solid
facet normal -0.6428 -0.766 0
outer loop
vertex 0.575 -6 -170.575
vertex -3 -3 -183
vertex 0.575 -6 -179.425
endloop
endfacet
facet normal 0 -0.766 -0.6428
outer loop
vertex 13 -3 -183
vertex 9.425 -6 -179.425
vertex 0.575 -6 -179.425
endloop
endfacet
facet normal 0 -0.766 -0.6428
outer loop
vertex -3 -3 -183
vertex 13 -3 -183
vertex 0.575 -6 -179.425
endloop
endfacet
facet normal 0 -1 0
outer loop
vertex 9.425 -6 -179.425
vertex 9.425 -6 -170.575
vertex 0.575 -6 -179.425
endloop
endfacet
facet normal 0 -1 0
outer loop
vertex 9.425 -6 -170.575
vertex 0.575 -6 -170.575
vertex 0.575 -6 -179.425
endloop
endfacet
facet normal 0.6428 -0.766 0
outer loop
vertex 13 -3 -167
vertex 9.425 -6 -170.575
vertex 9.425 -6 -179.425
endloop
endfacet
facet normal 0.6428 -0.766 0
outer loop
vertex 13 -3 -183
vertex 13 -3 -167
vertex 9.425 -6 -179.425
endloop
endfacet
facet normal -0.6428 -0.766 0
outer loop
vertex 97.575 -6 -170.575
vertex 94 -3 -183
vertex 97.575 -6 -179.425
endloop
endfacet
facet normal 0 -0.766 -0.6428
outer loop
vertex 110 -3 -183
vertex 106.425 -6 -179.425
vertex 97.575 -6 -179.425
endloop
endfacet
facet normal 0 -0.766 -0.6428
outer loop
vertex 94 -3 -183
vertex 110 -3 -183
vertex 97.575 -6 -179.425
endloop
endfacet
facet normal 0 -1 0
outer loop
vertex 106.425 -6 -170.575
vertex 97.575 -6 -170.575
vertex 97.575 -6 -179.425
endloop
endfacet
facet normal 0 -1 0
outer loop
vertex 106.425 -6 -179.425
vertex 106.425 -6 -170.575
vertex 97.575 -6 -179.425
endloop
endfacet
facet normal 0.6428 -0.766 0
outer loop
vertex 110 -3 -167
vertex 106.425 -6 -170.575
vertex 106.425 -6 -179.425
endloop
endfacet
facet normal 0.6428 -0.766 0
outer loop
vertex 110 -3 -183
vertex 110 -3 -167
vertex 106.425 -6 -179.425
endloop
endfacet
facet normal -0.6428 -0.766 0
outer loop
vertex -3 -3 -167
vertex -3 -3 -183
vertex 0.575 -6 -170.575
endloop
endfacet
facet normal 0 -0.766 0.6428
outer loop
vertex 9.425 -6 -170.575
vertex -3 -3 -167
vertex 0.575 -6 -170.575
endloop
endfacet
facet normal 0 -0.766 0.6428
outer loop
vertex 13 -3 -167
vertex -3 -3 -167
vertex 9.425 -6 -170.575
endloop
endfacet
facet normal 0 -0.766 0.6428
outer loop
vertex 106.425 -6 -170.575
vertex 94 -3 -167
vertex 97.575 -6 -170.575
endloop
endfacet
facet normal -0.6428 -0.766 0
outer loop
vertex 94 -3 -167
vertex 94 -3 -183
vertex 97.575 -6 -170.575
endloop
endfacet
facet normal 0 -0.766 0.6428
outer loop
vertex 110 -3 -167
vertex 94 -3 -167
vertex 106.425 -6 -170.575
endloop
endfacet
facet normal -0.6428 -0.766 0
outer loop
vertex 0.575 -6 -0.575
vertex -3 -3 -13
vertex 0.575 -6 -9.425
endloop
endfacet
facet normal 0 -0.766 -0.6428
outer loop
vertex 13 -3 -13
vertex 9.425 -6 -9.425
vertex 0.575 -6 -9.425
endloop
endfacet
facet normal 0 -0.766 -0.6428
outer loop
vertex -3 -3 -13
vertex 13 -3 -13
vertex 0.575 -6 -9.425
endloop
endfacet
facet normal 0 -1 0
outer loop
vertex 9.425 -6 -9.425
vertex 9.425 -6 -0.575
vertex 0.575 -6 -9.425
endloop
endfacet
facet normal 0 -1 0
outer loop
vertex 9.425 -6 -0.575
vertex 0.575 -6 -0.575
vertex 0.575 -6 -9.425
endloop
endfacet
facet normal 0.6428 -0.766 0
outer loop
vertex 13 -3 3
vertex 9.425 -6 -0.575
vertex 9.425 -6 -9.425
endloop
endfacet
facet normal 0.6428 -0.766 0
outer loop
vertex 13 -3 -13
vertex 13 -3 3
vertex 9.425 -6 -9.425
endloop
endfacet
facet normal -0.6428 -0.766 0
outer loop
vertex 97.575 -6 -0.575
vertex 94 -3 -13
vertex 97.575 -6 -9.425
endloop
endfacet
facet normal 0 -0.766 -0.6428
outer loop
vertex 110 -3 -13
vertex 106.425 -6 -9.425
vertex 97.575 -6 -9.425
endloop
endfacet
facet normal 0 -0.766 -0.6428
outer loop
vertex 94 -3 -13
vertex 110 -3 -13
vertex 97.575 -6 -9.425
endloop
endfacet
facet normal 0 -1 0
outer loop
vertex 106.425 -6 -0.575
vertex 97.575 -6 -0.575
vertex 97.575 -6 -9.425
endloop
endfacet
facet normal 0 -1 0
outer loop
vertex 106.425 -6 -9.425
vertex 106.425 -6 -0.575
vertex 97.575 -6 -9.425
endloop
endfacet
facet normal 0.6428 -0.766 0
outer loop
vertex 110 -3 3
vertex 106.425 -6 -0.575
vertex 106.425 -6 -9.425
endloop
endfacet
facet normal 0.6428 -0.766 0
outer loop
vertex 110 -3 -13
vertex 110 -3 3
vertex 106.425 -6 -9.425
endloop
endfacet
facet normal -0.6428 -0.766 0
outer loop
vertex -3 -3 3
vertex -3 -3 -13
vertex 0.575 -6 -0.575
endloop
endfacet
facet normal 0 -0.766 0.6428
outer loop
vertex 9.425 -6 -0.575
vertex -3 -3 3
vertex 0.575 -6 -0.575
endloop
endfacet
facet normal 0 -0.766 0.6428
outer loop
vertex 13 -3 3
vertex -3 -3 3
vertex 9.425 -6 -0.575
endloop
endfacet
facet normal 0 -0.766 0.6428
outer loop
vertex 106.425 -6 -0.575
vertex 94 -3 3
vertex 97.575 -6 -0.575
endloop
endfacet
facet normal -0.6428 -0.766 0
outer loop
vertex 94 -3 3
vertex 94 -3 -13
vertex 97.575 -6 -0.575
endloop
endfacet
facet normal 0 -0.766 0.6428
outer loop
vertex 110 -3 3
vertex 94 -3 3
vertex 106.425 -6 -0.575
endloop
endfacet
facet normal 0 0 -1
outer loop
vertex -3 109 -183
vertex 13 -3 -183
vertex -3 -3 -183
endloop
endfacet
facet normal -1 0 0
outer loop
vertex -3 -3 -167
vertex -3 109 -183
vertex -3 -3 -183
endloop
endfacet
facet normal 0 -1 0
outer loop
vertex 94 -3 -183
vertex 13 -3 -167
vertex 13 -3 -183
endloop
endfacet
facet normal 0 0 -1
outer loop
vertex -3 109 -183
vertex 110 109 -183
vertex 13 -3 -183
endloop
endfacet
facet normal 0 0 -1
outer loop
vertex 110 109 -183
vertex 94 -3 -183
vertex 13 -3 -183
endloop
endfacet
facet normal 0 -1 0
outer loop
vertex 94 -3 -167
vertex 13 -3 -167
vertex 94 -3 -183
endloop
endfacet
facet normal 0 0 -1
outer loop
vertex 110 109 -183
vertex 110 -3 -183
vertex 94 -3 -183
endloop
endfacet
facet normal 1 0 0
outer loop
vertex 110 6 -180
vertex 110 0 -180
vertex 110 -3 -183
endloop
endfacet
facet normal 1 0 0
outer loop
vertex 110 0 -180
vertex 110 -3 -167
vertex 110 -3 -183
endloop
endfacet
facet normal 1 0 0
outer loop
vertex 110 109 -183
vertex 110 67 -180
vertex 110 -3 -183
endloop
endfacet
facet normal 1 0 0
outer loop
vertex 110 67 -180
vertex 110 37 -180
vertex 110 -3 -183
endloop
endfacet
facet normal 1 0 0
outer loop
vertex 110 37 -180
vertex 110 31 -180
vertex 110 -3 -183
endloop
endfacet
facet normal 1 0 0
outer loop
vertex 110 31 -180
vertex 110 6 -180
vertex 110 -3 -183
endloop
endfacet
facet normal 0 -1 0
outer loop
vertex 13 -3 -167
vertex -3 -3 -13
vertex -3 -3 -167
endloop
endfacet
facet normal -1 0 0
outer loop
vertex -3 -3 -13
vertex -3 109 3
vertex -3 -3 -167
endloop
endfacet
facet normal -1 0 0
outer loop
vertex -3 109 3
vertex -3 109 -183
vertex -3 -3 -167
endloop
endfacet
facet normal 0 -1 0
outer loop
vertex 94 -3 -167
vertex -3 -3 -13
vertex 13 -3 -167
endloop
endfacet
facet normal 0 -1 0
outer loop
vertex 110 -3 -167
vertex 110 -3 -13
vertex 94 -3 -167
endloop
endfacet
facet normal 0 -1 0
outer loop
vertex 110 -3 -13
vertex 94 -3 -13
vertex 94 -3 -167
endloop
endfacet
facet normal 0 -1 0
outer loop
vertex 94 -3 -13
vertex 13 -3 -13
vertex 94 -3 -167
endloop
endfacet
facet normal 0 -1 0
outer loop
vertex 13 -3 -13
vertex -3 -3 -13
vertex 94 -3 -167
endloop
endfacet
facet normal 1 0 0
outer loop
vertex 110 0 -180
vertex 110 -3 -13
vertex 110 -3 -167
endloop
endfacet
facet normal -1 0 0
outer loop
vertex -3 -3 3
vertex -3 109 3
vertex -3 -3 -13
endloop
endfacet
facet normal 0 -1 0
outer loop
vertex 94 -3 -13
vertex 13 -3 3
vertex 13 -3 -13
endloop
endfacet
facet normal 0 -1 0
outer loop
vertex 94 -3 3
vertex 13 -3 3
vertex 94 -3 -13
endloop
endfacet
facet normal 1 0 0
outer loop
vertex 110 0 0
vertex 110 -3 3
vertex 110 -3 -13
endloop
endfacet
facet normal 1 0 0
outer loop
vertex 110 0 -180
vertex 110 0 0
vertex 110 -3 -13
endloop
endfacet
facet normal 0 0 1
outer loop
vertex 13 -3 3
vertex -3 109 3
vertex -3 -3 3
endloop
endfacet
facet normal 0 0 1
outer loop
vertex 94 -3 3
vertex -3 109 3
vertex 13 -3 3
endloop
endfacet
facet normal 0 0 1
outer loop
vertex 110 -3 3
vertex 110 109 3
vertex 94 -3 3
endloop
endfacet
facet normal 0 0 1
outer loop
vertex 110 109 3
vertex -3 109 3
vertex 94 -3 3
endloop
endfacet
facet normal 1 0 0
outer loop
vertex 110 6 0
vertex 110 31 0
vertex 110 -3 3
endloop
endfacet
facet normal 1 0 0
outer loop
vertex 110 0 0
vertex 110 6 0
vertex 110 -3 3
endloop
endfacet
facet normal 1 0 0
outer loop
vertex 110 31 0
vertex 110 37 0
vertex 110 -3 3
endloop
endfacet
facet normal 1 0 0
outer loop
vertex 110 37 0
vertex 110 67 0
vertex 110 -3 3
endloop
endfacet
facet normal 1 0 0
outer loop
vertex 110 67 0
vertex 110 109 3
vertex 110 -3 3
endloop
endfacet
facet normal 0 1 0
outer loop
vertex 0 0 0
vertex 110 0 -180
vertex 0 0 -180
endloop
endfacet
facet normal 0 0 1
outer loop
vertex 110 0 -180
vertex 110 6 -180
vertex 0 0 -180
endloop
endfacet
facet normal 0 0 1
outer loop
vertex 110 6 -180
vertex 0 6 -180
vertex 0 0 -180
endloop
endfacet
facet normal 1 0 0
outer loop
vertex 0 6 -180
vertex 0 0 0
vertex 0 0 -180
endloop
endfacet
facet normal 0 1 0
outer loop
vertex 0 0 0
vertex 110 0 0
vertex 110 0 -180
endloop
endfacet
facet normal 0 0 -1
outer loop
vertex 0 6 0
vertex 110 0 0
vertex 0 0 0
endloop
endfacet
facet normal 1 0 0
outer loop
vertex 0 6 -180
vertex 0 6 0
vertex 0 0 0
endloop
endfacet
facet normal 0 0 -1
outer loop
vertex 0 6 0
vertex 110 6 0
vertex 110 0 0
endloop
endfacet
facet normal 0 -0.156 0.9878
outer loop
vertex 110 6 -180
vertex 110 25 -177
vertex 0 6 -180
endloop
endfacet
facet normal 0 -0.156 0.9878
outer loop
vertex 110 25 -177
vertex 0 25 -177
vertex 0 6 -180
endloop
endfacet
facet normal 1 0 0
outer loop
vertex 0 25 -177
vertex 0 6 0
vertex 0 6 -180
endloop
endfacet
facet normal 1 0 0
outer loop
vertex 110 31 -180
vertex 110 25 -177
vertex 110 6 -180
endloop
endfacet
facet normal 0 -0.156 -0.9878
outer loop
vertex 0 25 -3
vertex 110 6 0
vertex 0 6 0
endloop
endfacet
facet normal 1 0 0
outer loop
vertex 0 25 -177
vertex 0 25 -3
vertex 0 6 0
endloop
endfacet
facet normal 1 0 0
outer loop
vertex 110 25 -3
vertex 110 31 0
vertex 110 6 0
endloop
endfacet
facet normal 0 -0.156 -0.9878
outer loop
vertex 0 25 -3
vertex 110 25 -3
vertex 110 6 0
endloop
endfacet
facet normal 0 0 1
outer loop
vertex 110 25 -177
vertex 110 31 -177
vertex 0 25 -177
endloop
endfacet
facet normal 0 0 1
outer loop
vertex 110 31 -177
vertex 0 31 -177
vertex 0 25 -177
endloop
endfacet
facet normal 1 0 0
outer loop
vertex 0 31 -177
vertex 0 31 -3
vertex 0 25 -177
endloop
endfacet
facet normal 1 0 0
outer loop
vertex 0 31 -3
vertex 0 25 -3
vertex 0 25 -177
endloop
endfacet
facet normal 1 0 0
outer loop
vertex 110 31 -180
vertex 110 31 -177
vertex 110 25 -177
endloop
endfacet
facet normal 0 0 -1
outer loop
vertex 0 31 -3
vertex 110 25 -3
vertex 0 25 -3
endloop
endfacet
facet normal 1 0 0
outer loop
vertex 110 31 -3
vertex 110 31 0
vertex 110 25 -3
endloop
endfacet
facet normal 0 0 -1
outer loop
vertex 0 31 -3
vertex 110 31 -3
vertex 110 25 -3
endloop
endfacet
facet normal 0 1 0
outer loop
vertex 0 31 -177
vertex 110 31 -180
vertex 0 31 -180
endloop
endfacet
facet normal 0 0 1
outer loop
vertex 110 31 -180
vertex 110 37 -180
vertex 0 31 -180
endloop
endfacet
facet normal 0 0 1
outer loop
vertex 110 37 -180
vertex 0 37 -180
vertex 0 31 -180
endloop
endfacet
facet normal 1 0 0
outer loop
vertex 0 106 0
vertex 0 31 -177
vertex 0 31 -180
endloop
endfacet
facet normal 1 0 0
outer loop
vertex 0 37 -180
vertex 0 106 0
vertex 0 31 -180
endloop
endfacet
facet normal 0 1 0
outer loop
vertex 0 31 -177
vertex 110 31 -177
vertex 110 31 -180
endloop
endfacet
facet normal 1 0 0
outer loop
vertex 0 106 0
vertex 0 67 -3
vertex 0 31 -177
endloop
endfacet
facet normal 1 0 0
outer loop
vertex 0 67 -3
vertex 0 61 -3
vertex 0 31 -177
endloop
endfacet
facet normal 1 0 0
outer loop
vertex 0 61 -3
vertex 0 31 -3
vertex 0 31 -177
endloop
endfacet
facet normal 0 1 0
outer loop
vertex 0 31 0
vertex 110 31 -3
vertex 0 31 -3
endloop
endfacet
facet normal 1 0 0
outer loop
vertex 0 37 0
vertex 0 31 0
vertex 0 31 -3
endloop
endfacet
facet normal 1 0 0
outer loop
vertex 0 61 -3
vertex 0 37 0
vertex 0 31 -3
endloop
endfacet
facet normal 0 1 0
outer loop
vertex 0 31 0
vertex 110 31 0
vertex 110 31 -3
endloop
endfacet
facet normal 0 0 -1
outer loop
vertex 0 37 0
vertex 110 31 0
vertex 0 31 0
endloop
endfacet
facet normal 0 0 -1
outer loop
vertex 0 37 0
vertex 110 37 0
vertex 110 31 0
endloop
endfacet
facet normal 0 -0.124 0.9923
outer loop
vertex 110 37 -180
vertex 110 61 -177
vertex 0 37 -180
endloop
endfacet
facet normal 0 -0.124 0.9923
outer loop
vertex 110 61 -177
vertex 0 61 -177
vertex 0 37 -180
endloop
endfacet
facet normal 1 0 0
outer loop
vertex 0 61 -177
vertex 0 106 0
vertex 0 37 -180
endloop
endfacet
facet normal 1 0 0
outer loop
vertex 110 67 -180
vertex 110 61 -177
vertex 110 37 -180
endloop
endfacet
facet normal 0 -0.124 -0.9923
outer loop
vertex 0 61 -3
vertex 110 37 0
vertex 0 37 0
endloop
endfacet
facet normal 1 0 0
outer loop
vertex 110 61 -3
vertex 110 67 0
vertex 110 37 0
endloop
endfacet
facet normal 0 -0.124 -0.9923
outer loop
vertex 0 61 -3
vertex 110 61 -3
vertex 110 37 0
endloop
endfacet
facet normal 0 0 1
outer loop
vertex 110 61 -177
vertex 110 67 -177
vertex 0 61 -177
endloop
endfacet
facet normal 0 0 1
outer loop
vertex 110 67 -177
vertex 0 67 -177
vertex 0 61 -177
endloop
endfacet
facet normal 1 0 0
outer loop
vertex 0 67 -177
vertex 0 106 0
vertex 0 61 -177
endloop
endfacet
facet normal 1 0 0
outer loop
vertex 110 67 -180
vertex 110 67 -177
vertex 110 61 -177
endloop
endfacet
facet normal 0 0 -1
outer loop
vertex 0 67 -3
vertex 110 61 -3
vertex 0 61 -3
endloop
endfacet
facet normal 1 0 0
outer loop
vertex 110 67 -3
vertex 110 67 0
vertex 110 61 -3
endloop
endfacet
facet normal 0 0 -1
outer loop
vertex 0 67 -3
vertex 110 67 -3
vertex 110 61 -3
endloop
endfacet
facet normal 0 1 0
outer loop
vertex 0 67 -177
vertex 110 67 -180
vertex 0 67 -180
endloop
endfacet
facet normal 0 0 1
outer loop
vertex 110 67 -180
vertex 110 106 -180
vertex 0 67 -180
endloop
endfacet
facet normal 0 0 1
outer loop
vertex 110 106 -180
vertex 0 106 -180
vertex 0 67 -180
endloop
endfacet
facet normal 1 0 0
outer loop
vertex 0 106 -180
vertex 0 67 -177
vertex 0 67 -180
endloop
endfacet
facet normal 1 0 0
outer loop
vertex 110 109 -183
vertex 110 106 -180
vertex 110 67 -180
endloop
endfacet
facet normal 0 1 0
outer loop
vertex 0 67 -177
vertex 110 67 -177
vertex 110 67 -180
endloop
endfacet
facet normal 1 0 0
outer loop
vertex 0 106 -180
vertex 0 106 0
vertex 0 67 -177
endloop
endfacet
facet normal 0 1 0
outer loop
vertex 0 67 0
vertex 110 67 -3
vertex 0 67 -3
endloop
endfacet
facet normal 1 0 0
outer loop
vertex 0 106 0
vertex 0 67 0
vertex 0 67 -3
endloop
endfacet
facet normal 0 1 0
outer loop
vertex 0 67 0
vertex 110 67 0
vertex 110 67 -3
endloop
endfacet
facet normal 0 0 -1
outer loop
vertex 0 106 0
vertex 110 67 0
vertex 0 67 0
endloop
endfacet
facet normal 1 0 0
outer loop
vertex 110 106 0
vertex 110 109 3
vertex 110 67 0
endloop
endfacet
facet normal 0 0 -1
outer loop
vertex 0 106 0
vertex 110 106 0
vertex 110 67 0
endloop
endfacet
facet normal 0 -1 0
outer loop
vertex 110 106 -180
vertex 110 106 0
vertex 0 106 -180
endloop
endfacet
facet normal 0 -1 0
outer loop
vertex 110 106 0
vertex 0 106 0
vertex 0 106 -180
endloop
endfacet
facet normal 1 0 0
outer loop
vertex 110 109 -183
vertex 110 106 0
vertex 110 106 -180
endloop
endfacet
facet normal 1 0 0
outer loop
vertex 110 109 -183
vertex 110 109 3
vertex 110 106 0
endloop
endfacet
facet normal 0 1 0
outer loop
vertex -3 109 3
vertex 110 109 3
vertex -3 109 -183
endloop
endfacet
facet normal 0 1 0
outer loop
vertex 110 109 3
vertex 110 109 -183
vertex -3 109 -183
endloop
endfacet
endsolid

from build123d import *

# Parameters (mm, degrees)
BOSS_EXTRUDE1_DEPTH           = 110
SKETCH2_W                     = 186
SKETCH2_H                     = 112
BOSS_EXTRUDE2_DEPTH           = 3
SKETCH3_W                     = 16
SKETCH3_H                     = 16
BOSS_EXTRUDE3_DEPTH           = 3
BOSS_EXTRUDE3_DRAFT           = 50
BOSS_EXTRUDE3_PROFILE_2_DEPTH = 3
BOSS_EXTRUDE3_PROFILE_2_DRAFT = 50
BOSS_EXTRUDE3_PROFILE_3_DEPTH = 3
BOSS_EXTRUDE3_PROFILE_3_DRAFT = 50
BOSS_EXTRUDE3_PROFILE_4_DEPTH = 3
BOSS_EXTRUDE3_PROFILE_4_DRAFT = 50


with BuildPart() as part:
    # Sketch1 → Boss-Extrude1 (new body)
    with BuildSketch(Plane(origin=(0, 0, 0), x_dir=(0, 0, -1), z_dir=(1, 0, 0))):
        Polygon((-3, 0), (-3, 106), (-3, 109), (183, 109), (183, 106), (183, 0), (183, -3), (-3, -3), align=None)
        Polygon((0, 0), (0, 6), (3, 25), (3, 31), (0, 31), (0, 37), (3, 61), (3, 67), (0, 67), (0, 106), (180, 106), (180, 67), (177, 67), (177, 61), (180, 37), (180, 31), (177, 31), (177, 25), (180, 6), (180, 0), align=None, mode=Mode.SUBTRACT)
    extrude(amount=BOSS_EXTRUDE1_DEPTH)

    # Sketch2 → Boss-Extrude2 (add)
    with BuildSketch(Plane.ZY):
        with Locations((-90, 53)):
            Rectangle(SKETCH2_W, SKETCH2_H)
    extrude(amount=BOSS_EXTRUDE2_DEPTH)


with BuildPart() as boss_extrude3_tool:
    # Sketch3 → Boss-Extrude3 (with draft: the straight prism first)
    with BuildSketch(Plane.XZ.offset(3)):
        with Locations((5, -5)):
            Rectangle(SKETCH3_W, SKETCH3_H)
    extrude(amount=BOSS_EXTRUDE3_DEPTH)
    # Boss-Extrude3: the draft: its side faces are tilted about the plane it starts from
    boss_extrude3_sides = [boss_extrude3_tool.faces().sort_by_distance(p)[0] for p in [
        (-3, -4.5, -5),
        (5, -4.5, -13),
        (13, -4.5, -5),
        (5, -4.5, 3),
    ]]
    draft(boss_extrude3_sides, Plane.XZ.offset(3), BOSS_EXTRUDE3_DRAFT)


with BuildPart() as part_1:
    add(part.part)

    # Boss-Extrude3: add boss_extrude3_tool
    add(boss_extrude3_tool.part)


with BuildPart() as boss_extrude3_profile_2_tool:
    # Sketch3 → Boss-Extrude3 profile 2 (with draft: the straight prism first)
    with BuildSketch(Plane.XZ.offset(3)):
        with Locations((102, -5)):
            Rectangle(SKETCH3_W, SKETCH3_H)
    extrude(amount=BOSS_EXTRUDE3_PROFILE_2_DEPTH)
    # Boss-Extrude3 profile 2: the draft: its side faces are tilted about the plane it starts from
    boss_extrude3_profile_2_sides = [boss_extrude3_profile_2_tool.faces().sort_by_distance(p)[0] for p in [
        (102, -4.5, 3),
        (94, -4.5, -5),
        (102, -4.5, -13),
        (110, -4.5, -5),
    ]]
    draft(boss_extrude3_profile_2_sides, Plane.XZ.offset(3), BOSS_EXTRUDE3_PROFILE_2_DRAFT)


with BuildPart() as part_2:
    add(part_1.part)

    # Boss-Extrude3 profile 2: add boss_extrude3_profile_2_tool
    add(boss_extrude3_profile_2_tool.part)


with BuildPart() as boss_extrude3_profile_3_tool:
    # Sketch3 → Boss-Extrude3 profile 3 (with draft: the straight prism first)
    with BuildSketch(Plane.XZ.offset(3)):
        with Locations((102, -175)):
            Rectangle(SKETCH3_W, SKETCH3_H)
    extrude(amount=BOSS_EXTRUDE3_PROFILE_3_DEPTH)
    # Boss-Extrude3 profile 3: the draft: its side faces are tilted about the plane it starts from
    boss_extrude3_profile_3_sides = [boss_extrude3_profile_3_tool.faces().sort_by_distance(p)[0] for p in [
        (110, -4.5, -175),
        (102, -4.5, -167),
        (94, -4.5, -175),
        (102, -4.5, -183),
    ]]
    draft(boss_extrude3_profile_3_sides, Plane.XZ.offset(3), BOSS_EXTRUDE3_PROFILE_3_DRAFT)


with BuildPart() as part_3:
    add(part_2.part)

    # Boss-Extrude3 profile 3: add boss_extrude3_profile_3_tool
    add(boss_extrude3_profile_3_tool.part)


with BuildPart() as boss_extrude3_profile_4_tool:
    # Sketch3 → Boss-Extrude3 profile 4 (with draft: the straight prism first)
    with BuildSketch(Plane.XZ.offset(3)):
        with Locations((5, -175)):
            Rectangle(SKETCH3_W, SKETCH3_H)
    extrude(amount=BOSS_EXTRUDE3_PROFILE_4_DEPTH)
    # Boss-Extrude3 profile 4: the draft: its side faces are tilted about the plane it starts from
    boss_extrude3_profile_4_sides = [boss_extrude3_profile_4_tool.faces().sort_by_distance(p)[0] for p in [
        (5, -4.5, -183),
        (13, -4.5, -175),
        (5, -4.5, -167),
        (-3, -4.5, -175),
    ]]
    draft(boss_extrude3_profile_4_sides, Plane.XZ.offset(3), BOSS_EXTRUDE3_PROFILE_4_DRAFT)


with BuildPart() as part_4:
    add(part_3.part)

    # Boss-Extrude3 profile 4: add boss_extrude3_profile_4_tool
    add(boss_extrude3_profile_4_tool.part)


solid = part_4.part
